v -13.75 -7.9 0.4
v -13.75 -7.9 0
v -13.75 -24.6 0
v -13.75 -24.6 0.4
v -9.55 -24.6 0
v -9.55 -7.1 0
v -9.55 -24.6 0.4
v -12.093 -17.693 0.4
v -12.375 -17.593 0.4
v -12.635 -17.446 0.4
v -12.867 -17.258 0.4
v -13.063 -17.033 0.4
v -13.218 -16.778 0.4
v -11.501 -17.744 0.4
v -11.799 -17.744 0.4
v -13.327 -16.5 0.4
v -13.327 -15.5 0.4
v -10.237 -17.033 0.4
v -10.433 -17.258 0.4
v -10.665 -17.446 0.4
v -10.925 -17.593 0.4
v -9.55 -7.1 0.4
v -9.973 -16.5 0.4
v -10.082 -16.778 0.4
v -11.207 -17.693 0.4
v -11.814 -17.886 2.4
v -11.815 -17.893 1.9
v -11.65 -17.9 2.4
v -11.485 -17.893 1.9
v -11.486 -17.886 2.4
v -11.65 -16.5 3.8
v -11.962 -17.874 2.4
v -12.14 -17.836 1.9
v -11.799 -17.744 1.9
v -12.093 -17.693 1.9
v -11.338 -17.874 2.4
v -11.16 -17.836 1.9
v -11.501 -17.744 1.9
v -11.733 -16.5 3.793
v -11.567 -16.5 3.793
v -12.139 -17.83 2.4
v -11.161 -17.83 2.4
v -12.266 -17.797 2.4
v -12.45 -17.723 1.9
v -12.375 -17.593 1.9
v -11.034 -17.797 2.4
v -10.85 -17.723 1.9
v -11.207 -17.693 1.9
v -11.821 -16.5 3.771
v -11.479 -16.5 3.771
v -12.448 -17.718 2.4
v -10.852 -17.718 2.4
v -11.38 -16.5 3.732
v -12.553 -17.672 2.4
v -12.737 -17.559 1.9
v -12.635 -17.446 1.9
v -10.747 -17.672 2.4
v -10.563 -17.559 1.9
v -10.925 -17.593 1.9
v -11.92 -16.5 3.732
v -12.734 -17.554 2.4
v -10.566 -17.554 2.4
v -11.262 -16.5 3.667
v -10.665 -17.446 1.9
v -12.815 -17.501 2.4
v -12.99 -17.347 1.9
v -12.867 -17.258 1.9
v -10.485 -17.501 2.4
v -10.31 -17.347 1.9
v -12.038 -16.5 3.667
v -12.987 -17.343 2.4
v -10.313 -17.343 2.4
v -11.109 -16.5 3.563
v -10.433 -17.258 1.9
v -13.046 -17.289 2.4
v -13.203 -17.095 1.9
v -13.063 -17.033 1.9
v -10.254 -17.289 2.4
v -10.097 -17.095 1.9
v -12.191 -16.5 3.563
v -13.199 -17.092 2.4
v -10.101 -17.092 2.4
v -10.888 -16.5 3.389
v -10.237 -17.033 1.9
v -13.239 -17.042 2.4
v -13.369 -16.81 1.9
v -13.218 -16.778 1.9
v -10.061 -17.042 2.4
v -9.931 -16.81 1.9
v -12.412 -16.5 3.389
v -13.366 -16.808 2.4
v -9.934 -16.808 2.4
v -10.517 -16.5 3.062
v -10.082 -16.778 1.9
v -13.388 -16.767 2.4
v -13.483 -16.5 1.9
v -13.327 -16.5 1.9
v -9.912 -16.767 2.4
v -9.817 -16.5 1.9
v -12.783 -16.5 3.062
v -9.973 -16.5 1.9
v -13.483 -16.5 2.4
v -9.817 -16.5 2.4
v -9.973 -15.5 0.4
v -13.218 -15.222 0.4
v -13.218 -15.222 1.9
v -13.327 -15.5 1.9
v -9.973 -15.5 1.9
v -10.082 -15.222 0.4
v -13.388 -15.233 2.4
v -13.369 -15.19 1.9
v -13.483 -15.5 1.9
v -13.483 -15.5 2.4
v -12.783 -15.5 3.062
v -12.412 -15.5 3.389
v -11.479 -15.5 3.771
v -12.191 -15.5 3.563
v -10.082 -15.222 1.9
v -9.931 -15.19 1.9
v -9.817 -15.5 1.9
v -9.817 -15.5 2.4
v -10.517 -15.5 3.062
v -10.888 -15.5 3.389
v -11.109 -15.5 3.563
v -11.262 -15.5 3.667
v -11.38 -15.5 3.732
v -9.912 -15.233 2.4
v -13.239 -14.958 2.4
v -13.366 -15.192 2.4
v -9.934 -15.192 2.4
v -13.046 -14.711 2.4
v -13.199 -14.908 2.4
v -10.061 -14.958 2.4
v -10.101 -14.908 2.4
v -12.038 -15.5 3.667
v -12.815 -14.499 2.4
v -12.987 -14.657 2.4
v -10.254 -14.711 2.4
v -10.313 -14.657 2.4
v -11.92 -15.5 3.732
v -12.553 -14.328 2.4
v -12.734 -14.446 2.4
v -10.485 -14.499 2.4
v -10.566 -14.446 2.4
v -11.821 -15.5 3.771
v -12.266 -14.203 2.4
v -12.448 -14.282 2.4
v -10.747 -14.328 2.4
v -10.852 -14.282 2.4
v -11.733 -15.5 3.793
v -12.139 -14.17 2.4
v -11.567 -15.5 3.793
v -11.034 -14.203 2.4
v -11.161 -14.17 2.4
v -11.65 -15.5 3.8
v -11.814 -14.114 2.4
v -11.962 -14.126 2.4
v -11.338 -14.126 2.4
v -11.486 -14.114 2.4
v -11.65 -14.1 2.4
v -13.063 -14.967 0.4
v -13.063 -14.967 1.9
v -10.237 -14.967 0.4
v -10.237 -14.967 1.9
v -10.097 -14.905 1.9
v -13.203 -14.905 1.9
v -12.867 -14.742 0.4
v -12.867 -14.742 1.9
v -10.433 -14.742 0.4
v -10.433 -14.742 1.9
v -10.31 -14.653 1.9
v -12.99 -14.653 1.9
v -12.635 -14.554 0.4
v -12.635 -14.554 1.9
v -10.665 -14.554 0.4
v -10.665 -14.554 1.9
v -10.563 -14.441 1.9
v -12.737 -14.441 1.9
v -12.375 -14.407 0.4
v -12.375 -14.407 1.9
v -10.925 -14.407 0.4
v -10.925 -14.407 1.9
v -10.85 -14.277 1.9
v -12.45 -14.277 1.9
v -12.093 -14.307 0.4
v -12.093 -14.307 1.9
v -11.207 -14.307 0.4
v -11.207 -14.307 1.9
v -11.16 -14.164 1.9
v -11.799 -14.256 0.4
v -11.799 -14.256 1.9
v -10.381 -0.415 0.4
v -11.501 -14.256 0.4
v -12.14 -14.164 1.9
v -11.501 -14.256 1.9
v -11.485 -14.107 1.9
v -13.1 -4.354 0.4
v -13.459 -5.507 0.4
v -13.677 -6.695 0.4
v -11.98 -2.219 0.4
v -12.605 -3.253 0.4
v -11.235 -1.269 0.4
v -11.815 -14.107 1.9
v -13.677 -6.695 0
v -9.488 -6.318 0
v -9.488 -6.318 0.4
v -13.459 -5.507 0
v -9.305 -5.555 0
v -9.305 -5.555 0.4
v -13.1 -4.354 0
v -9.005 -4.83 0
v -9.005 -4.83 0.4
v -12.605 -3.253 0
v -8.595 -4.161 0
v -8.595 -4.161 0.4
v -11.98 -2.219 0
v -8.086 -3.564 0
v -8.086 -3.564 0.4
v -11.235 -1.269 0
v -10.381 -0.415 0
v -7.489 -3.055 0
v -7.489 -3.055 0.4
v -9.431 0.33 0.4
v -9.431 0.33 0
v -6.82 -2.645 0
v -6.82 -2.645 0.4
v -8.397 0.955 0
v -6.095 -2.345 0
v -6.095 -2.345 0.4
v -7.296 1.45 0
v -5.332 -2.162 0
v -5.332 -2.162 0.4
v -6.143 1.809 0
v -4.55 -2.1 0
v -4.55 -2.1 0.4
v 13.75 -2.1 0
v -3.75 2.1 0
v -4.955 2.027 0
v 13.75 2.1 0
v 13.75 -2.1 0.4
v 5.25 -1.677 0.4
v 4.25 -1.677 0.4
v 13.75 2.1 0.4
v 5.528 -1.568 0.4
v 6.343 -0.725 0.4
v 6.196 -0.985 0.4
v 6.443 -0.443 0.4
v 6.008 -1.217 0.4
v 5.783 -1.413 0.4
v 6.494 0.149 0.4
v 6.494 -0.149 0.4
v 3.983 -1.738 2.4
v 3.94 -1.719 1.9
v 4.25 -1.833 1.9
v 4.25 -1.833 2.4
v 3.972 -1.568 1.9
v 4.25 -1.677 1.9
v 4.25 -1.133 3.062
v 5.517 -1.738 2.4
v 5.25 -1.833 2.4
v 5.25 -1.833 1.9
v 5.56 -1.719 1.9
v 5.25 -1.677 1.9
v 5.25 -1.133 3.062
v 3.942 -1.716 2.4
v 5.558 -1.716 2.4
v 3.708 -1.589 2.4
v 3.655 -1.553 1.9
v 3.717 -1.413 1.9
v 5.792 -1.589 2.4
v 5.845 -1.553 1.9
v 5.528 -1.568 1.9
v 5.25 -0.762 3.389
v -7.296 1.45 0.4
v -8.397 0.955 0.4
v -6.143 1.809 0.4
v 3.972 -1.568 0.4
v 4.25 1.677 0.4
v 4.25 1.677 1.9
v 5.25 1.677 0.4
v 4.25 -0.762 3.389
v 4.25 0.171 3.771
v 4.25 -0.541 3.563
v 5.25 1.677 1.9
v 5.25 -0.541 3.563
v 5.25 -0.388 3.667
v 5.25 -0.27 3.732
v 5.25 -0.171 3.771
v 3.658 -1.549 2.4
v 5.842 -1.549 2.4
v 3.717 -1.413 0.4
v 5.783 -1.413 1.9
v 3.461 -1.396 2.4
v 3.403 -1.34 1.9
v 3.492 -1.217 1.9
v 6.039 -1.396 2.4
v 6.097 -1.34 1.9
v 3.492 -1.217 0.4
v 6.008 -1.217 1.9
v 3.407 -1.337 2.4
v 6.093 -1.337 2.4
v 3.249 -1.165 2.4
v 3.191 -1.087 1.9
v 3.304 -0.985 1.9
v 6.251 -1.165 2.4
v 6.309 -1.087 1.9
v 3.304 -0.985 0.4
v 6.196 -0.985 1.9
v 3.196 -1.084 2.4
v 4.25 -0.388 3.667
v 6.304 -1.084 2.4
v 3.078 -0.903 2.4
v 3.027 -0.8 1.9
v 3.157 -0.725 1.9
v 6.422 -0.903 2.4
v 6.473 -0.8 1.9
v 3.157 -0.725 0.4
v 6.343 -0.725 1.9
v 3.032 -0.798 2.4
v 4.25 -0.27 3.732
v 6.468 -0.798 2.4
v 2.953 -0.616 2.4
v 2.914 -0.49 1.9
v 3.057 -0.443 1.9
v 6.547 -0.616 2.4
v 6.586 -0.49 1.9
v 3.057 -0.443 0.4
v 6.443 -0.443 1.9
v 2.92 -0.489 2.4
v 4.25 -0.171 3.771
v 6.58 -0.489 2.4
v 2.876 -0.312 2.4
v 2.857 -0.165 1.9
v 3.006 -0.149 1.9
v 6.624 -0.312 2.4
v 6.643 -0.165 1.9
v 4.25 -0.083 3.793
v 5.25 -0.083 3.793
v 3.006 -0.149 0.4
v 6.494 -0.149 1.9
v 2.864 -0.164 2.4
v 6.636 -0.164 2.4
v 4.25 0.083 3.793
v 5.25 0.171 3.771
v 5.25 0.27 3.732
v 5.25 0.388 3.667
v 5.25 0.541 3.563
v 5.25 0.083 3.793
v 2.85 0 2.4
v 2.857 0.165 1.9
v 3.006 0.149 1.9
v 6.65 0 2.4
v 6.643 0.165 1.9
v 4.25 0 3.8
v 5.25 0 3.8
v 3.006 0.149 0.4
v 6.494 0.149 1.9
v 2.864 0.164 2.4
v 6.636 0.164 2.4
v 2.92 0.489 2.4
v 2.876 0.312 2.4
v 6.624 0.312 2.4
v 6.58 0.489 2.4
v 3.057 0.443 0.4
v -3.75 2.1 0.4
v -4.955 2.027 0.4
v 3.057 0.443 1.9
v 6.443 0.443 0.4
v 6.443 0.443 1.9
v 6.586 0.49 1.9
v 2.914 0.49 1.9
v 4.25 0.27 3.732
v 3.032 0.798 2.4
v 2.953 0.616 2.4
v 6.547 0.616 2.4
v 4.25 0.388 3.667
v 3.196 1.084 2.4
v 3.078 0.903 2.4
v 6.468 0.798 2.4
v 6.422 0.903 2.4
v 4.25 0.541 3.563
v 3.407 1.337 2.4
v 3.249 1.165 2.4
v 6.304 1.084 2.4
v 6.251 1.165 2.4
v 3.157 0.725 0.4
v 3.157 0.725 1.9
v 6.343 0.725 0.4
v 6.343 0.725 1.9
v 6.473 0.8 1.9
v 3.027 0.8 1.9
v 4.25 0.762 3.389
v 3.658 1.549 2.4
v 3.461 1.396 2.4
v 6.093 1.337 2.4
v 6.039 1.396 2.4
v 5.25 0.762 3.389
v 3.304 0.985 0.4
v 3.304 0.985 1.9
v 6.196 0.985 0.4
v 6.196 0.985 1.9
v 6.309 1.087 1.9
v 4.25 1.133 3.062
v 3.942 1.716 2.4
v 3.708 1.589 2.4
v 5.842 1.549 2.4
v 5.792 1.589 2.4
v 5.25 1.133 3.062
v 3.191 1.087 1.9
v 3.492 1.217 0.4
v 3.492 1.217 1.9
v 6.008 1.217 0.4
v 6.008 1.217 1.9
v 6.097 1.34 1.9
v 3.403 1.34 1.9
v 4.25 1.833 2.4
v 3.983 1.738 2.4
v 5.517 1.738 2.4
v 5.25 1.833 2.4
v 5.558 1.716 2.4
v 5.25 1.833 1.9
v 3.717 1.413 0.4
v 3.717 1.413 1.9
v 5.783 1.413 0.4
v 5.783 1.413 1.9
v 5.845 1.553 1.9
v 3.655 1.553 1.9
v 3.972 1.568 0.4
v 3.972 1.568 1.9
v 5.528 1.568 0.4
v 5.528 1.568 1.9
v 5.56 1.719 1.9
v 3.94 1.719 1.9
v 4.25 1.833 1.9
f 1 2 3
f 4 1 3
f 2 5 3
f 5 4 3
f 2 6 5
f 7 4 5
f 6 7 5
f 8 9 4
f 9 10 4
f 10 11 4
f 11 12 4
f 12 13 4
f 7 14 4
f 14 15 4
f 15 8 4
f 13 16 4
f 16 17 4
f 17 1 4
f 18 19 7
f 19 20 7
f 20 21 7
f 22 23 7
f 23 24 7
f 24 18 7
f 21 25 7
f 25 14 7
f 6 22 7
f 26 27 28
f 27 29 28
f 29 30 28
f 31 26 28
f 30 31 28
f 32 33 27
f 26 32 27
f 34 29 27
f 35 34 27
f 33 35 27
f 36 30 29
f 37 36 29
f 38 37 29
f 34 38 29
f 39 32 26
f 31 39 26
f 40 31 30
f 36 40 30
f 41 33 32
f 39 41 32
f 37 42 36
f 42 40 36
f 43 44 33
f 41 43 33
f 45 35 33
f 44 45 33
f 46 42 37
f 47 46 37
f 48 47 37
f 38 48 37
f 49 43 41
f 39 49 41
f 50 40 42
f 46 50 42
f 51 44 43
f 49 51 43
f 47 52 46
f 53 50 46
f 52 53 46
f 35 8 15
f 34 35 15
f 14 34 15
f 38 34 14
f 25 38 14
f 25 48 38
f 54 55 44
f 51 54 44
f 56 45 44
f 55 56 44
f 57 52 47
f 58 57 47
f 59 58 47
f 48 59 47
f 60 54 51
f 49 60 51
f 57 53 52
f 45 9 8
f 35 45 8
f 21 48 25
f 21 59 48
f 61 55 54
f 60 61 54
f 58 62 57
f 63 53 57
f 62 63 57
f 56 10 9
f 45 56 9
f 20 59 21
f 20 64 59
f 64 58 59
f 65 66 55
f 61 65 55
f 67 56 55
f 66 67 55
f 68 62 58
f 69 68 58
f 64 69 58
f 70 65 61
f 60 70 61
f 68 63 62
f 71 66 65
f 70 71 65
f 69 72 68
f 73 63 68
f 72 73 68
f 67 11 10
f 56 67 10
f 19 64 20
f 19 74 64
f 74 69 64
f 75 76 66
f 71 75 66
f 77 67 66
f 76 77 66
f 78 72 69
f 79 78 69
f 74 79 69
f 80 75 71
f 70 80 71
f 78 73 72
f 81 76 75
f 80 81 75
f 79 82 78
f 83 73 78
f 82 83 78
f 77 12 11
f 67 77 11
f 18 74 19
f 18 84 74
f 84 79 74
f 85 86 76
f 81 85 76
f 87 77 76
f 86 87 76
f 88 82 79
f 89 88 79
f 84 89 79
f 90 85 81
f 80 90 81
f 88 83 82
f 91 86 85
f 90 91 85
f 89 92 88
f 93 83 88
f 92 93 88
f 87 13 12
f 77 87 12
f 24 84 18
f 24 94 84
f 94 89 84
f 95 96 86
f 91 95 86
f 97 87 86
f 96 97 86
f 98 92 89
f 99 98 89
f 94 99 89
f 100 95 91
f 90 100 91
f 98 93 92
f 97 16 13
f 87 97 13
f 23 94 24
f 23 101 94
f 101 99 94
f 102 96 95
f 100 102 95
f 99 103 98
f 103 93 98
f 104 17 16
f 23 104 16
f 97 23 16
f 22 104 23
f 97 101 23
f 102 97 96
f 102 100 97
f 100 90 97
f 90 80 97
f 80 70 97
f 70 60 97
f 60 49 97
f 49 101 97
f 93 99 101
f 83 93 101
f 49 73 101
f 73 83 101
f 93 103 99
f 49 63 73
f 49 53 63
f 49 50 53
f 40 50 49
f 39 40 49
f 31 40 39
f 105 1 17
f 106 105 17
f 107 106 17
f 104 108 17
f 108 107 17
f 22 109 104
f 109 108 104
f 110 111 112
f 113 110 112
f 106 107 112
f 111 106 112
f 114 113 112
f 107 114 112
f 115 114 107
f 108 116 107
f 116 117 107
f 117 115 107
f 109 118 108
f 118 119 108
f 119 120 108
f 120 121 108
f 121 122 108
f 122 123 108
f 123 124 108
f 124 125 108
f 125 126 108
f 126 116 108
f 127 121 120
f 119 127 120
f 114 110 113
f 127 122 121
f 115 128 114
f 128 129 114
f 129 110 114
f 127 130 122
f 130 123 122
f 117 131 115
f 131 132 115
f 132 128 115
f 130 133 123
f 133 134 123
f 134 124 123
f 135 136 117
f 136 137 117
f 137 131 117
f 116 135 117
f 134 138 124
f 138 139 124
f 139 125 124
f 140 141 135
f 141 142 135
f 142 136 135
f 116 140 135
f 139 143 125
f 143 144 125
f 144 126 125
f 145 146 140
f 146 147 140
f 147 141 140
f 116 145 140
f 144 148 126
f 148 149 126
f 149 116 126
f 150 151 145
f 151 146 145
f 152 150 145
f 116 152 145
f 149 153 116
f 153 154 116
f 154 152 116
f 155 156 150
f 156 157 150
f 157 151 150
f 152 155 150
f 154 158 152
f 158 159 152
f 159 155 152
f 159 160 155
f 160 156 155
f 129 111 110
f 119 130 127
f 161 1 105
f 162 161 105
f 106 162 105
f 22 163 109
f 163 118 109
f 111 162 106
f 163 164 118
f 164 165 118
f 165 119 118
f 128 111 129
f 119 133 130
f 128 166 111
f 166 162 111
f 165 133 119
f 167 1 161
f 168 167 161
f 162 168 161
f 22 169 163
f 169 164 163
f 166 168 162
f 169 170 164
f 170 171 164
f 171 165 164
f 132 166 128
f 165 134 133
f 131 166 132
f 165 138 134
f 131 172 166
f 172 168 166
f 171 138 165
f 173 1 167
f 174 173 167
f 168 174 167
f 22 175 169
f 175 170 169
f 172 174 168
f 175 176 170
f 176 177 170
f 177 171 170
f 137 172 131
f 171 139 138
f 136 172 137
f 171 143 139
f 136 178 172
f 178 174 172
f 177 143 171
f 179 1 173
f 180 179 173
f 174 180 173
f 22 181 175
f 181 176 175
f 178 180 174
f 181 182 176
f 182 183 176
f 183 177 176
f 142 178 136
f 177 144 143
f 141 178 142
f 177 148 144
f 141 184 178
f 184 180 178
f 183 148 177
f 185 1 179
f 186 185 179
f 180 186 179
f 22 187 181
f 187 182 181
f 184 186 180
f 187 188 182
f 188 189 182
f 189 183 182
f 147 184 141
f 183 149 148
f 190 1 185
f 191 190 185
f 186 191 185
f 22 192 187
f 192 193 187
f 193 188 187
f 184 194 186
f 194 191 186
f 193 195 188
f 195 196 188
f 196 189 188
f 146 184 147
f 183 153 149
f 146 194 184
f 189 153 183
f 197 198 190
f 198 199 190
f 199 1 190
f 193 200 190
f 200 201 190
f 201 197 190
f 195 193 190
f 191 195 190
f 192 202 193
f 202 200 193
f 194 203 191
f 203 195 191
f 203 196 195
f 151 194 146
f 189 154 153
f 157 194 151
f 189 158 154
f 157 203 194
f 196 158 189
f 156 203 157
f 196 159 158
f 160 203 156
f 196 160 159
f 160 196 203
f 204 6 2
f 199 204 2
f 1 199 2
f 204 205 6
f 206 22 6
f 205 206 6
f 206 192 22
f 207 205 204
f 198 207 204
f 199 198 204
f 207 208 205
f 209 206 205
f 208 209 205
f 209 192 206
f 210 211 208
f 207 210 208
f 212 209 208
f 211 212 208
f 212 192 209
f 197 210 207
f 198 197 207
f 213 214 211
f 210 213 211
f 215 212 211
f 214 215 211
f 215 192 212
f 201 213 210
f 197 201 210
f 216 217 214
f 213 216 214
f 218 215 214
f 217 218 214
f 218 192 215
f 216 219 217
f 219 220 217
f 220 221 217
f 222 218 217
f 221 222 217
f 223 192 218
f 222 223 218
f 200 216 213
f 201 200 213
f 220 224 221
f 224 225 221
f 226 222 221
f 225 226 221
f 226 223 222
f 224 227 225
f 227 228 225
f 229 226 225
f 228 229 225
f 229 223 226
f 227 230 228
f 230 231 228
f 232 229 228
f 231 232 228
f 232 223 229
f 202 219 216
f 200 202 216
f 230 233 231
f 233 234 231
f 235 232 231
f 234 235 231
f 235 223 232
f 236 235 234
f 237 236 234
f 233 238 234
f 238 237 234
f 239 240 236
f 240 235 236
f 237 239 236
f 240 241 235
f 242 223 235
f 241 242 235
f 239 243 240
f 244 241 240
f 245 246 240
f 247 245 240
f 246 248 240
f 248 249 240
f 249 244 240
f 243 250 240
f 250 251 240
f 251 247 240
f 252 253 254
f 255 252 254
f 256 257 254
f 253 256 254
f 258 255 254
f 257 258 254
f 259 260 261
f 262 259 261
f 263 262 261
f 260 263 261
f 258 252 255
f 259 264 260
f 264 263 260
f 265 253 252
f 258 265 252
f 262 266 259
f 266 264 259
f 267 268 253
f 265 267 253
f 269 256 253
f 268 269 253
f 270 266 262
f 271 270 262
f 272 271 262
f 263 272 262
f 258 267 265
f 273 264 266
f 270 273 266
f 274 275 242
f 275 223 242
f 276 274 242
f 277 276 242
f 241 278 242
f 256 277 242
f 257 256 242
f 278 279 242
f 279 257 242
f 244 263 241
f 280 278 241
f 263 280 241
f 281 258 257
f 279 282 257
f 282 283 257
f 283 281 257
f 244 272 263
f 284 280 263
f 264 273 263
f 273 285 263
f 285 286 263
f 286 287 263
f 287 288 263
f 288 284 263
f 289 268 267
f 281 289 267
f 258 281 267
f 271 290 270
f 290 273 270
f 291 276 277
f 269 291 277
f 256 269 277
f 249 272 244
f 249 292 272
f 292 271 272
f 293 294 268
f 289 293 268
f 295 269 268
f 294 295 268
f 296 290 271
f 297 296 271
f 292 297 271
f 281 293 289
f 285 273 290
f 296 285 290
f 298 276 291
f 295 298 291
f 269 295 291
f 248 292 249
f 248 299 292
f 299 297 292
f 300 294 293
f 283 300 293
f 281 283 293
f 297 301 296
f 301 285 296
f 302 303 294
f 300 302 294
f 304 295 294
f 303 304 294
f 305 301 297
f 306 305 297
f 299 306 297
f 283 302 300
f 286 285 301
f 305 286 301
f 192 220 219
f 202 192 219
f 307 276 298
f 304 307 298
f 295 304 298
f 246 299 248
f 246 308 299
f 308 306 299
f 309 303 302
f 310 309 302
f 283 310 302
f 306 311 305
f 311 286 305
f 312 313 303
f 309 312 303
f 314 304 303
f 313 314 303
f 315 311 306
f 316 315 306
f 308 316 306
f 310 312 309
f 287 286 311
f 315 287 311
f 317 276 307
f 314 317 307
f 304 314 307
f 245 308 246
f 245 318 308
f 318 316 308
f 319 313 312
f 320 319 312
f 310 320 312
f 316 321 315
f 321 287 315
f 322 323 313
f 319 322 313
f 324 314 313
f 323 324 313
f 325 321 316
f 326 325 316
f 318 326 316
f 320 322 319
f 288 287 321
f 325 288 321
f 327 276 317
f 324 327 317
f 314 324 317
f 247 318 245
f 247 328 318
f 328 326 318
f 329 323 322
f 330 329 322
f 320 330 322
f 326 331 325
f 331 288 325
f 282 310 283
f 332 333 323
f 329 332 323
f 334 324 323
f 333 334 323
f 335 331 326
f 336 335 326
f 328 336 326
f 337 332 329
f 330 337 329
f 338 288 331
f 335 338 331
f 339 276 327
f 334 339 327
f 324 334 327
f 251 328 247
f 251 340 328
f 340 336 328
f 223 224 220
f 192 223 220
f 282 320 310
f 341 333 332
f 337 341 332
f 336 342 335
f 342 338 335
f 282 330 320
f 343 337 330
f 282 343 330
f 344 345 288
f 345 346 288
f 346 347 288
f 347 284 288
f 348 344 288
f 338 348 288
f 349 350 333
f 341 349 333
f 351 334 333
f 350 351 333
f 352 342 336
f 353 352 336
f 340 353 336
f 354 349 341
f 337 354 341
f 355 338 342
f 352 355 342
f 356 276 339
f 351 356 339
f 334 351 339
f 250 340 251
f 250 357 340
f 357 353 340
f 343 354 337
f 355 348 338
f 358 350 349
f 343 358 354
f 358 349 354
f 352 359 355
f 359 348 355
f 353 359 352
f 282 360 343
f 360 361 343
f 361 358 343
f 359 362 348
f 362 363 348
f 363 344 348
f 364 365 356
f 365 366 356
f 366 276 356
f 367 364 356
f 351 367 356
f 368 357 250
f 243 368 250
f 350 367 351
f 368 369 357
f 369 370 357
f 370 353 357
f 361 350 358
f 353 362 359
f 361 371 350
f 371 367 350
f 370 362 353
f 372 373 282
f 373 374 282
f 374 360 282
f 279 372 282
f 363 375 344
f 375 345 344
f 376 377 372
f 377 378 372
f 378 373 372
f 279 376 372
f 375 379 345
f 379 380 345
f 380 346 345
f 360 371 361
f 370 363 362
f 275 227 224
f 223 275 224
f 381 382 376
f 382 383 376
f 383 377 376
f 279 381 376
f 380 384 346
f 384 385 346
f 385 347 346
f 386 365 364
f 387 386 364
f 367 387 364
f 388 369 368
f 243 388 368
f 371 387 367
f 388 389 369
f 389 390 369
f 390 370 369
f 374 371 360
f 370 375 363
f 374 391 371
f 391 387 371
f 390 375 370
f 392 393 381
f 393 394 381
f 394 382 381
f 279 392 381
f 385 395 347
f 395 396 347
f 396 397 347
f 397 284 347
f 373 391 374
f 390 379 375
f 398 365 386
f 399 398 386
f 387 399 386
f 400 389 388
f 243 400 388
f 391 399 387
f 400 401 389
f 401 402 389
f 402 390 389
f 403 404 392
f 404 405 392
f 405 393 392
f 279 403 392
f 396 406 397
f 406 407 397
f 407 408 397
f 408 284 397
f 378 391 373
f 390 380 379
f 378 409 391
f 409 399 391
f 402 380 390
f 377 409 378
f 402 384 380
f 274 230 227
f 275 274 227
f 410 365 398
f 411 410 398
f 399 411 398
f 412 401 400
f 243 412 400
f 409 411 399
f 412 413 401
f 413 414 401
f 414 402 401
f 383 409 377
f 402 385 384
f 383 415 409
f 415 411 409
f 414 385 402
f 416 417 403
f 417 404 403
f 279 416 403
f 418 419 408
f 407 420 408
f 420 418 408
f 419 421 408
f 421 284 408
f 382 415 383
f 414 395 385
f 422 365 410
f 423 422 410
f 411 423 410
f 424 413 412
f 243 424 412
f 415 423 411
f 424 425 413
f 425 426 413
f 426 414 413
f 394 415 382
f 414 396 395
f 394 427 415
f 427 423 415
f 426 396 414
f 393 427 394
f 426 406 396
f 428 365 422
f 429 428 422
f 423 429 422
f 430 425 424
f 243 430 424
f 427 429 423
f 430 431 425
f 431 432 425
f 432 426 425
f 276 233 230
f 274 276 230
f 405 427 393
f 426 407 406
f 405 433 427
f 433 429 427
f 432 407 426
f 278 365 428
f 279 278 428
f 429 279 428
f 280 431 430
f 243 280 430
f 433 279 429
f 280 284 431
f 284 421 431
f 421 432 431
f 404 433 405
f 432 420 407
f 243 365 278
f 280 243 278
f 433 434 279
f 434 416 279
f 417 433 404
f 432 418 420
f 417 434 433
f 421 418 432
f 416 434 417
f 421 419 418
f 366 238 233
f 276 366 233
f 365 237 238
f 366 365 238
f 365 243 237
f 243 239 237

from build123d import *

# Parameters (mm, degrees)
SKICA2_W                 = 27.5
SKICA2_H                 = 4.2
P_IDAT_VYSUNUT_M2_DEPTH  = 0.4
SKICA3_R                 = 1.75
P_IDAT_VYSUNUT_M3_DEPTH  = 1.5
SKICA5_R                 = 1.9
P_IDAT_VYSUNUT_M5_DEPTH  = 2
ZKOSEN_2_SIZE            = 1.5
SKICA7_W                 = 1
SKICA7_H                 = 5
ODEBRAT_VYSUNUT_M1_DEPTH = 3.5
SKICA8_W                 = 4.2
SKICA8_H                 = 22.5
P_IDAT_VYSUNUT_M6_DEPTH  = 0.4
SKICA9_R                 = 1.75
P_IDAT_VYSUNUT_M7_DEPTH  = 1.5
SKICA10_R                = 1.9
P_IDAT_VYSUNUT_M8_DEPTH  = 2
ZKOSEN_3_SIZE            = 1.5
SKICA12_W                = 5
SKICA12_H                = 1
ODEBRAT_VYSUNUT_M2_DEPTH = 3.5
ZAOBLIT1_R               = 5
ZAOBLIT2_R               = 10


with BuildPart() as part:
    # Skica2 → Přidat vysunutím2 (new body)
    with BuildSketch(Plane.XY):
        Rectangle(SKICA2_W, SKICA2_H)
    extrude(amount=P_IDAT_VYSUNUT_M2_DEPTH)

    # Skica3 → Přidat vysunutím3 (add)
    with BuildSketch(Plane.XY.offset(0.4)):
        with Locations((4.75, 0)):
            Circle(SKICA3_R)
    extrude(amount=P_IDAT_VYSUNUT_M3_DEPTH)

    # Skica5 → Přidat vysunutím5 (add)
    with BuildSketch(Plane.XY.offset(1.9)):
        with Locations((4.75, 0)):
            Circle(SKICA5_R)
    extrude(amount=P_IDAT_VYSUNUT_M5_DEPTH)

    # Zkosení2
    zkosen_2_edges = [part.edges().sort_by_distance(p)[0] for p in [
        (2.85, 0, 3.9),
    ]]
    chamfer(zkosen_2_edges, length=ZKOSEN_2_SIZE)

    # Skica7 → Odebrat vysunutím1 (cut)
    with BuildSketch(Plane.XY.offset(3.9)):
        with Locations((4.75, 0)):
            Rectangle(SKICA7_W, SKICA7_H)
    extrude(amount=-ODEBRAT_VYSUNUT_M1_DEPTH, mode=Mode.SUBTRACT)

    # Skica8 → Přidat vysunutím6 (add)
    with BuildSketch(Plane(origin=(0, 0, 0), x_dir=(-1, 0, 0), z_dir=(0, 0, -1))):
        with Locations((11.65, -13.35)):
            Rectangle(SKICA8_W, SKICA8_H)
    extrude(amount=-P_IDAT_VYSUNUT_M6_DEPTH)

    # Skica9 → Přidat vysunutím7 (add)
    with BuildSketch(Plane.XY.offset(0.4)):
        with Locations((-11.65, -16)):
            Circle(SKICA9_R)
    extrude(amount=P_IDAT_VYSUNUT_M7_DEPTH)

    # Skica10 → Přidat vysunutím8 (add)
    with BuildSketch(Plane.XY.offset(1.9)):
        with Locations((-11.65, -16)):
            Circle(SKICA10_R)
    extrude(amount=P_IDAT_VYSUNUT_M8_DEPTH)

    # Zkosení3
    zkosen_3_edges = [part.edges().sort_by_distance(p)[0] for p in [
        (-13.55, -16, 3.9),
    ]]
    chamfer(zkosen_3_edges, length=ZKOSEN_3_SIZE)

    # Skica12 → Odebrat vysunutím2 (cut)
    with BuildSketch(Plane.XY.offset(3.9)):
        with Locations((-11.65, -16)):
            Rectangle(SKICA12_W, SKICA12_H)
    extrude(amount=-ODEBRAT_VYSUNUT_M2_DEPTH, mode=Mode.SUBTRACT)

    # Zaoblit1
    zaoblit1_edges = [part.edges().sort_by_distance(p)[0] for p in [
        (-9.55, -2.1, 0.2),
    ]]
    fillet(zaoblit1_edges, radius=ZAOBLIT1_R)

    # Zaoblit2
    zaoblit2_edges = [part.edges().sort_by_distance(p)[0] for p in [
        (-13.75, 2.1, 0.2),
    ]]
    fillet(zaoblit2_edges, radius=ZAOBLIT2_R)


solid = part.part
